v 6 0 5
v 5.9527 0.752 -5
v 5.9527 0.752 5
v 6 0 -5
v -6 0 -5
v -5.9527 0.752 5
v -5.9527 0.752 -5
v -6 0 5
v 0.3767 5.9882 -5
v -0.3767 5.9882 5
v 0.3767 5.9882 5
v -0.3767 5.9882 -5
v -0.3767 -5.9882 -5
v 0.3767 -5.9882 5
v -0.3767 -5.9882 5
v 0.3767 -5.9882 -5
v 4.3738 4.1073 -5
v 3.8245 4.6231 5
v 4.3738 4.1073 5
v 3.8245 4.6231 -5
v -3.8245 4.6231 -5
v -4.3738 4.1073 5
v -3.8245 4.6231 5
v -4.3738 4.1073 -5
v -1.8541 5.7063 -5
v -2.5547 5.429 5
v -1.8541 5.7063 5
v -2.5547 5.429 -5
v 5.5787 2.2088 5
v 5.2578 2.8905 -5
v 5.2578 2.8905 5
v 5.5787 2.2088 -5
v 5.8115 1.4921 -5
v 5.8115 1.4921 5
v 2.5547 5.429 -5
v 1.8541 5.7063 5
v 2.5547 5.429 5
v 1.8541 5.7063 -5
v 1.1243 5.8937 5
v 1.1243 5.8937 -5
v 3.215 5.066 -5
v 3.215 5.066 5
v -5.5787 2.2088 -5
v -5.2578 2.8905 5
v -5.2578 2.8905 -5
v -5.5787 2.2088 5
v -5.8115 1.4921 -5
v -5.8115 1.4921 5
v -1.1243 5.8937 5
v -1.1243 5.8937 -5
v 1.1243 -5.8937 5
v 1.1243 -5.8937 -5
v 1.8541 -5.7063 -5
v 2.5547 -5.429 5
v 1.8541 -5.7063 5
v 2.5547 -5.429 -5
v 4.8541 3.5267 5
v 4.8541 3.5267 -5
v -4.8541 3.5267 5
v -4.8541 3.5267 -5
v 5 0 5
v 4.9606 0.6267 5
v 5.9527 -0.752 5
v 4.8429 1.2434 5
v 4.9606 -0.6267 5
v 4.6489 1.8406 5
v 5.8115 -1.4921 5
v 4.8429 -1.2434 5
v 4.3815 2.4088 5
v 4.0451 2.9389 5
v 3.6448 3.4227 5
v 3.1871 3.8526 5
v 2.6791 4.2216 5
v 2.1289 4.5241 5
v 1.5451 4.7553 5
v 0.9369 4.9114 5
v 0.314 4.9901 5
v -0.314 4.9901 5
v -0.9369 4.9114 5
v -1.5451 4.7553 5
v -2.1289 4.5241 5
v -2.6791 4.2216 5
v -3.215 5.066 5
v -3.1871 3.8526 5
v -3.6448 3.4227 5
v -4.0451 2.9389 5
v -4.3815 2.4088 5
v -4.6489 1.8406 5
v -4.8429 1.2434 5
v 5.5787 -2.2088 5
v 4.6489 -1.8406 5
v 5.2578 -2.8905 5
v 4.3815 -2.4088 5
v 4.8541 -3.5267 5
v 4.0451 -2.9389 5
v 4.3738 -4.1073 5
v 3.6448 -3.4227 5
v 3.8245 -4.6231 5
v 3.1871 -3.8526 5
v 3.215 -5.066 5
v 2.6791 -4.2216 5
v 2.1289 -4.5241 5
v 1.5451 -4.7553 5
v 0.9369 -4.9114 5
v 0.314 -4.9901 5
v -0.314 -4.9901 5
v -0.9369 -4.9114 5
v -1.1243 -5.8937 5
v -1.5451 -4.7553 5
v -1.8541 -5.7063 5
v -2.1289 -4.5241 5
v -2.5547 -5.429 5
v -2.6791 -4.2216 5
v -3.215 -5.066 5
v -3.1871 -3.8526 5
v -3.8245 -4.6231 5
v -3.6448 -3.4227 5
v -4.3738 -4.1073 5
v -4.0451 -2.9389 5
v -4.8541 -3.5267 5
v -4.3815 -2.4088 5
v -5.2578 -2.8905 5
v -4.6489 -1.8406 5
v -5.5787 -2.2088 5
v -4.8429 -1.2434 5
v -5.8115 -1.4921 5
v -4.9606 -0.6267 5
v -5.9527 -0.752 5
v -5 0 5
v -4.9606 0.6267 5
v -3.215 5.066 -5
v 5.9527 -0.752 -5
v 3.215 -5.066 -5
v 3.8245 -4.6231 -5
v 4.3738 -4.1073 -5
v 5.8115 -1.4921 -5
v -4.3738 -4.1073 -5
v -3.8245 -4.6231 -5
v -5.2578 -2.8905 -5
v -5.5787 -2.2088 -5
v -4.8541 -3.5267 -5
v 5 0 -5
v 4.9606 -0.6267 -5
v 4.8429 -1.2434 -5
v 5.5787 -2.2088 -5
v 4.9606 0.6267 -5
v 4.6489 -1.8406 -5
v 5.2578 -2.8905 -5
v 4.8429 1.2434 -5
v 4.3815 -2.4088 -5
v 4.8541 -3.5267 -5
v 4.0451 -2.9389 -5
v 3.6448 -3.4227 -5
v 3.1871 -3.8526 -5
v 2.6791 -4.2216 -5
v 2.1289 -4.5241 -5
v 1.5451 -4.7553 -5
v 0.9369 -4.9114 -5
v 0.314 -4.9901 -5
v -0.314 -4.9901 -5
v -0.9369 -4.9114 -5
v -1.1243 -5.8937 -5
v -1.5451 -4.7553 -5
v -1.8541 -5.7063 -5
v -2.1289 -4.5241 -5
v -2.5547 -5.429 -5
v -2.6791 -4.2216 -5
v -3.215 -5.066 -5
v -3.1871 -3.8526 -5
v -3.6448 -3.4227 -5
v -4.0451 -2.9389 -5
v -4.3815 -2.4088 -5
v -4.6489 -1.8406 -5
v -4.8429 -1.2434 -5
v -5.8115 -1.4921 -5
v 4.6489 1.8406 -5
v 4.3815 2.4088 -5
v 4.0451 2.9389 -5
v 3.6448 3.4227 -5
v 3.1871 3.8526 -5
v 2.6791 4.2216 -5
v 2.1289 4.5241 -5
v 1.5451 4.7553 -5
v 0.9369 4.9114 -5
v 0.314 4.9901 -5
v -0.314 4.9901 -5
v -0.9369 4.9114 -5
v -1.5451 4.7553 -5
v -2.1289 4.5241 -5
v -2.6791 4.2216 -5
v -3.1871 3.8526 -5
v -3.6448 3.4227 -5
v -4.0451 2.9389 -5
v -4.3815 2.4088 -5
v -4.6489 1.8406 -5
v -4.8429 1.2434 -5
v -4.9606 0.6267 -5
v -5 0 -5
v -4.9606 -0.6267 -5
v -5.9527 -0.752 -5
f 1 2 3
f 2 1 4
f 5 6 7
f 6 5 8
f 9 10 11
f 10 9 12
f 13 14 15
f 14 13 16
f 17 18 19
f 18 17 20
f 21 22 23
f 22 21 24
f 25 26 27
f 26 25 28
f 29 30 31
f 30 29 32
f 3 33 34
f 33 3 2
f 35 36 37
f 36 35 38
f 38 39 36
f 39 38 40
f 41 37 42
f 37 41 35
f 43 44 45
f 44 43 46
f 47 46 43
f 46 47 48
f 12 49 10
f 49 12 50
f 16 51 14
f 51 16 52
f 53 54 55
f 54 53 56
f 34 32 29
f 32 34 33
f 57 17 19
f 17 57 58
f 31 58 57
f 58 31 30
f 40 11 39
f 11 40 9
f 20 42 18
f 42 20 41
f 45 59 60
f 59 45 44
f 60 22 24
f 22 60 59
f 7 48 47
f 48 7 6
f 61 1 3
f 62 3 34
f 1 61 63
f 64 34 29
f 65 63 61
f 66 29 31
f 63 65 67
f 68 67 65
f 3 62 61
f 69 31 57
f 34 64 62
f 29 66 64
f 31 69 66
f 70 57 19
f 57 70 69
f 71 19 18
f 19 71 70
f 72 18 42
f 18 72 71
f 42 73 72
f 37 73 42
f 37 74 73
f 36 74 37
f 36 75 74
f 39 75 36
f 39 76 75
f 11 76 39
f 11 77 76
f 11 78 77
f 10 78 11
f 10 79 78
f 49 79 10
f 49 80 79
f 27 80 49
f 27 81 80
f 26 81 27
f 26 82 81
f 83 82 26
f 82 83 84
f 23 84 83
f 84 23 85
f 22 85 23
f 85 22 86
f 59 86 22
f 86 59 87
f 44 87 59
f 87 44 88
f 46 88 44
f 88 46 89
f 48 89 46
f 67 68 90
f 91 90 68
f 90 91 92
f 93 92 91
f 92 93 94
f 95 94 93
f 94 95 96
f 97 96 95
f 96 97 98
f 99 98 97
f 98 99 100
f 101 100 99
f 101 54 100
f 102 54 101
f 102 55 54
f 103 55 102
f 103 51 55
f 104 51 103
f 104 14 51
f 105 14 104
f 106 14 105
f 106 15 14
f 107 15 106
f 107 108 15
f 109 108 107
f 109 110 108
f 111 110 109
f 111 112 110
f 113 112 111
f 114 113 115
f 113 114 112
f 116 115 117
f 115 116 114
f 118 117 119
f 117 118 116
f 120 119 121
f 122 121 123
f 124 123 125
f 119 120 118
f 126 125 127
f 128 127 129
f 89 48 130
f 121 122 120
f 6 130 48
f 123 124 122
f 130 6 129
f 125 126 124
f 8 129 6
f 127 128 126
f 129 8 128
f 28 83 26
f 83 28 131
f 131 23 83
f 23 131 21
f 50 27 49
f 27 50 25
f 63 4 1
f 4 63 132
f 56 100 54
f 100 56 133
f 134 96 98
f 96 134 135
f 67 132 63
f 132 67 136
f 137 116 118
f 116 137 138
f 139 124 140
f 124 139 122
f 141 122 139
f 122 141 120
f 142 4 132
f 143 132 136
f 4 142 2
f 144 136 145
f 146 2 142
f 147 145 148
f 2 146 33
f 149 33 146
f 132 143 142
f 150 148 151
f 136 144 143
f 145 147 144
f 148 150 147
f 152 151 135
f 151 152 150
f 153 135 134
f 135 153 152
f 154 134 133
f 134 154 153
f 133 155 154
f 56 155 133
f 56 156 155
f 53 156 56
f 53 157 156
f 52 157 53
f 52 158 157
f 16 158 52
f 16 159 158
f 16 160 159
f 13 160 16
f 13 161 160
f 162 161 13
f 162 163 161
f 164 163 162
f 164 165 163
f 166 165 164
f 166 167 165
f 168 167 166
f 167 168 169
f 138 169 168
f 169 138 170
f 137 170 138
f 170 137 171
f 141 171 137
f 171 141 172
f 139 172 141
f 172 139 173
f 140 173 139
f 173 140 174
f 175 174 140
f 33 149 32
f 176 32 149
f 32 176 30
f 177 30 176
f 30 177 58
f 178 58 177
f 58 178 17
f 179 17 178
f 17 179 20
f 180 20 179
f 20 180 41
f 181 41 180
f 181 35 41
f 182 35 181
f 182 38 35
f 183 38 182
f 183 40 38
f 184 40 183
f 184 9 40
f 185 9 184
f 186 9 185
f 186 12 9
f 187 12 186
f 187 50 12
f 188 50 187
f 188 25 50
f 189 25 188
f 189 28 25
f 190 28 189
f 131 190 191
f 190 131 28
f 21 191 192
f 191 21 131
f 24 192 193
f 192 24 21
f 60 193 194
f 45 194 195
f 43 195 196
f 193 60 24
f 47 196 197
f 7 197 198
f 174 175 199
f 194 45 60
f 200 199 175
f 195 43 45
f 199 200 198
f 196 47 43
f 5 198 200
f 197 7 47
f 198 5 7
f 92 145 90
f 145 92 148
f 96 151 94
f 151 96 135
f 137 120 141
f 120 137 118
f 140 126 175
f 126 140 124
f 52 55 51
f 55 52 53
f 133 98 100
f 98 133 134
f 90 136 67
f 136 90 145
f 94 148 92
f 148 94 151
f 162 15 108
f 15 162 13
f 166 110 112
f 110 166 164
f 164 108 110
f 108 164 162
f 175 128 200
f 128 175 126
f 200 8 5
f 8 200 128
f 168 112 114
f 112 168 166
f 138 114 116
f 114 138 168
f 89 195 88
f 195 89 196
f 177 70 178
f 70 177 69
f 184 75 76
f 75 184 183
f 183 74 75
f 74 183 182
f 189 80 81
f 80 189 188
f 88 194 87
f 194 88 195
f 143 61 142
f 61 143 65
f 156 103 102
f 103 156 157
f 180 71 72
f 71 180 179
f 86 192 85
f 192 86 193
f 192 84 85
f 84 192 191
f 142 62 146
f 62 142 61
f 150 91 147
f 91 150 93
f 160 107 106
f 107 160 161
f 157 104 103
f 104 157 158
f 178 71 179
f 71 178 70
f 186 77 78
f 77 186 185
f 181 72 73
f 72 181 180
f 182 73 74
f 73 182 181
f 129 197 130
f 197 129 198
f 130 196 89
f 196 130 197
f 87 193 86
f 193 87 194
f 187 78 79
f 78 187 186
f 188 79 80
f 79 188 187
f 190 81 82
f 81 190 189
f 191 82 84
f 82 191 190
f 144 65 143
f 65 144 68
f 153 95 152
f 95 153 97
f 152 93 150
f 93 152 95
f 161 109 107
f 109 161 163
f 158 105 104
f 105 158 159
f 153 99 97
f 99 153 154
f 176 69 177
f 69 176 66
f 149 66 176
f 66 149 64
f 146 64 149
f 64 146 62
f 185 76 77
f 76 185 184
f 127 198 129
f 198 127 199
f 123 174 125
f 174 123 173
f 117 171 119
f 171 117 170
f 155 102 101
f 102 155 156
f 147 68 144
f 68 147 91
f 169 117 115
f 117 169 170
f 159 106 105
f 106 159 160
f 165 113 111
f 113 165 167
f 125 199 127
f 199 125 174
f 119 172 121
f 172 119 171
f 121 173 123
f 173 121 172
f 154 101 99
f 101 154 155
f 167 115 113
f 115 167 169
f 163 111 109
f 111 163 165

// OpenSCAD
$fn = 50;


difference() {
	union() {
		translate(v = [0, 0, -5.0000000000]) {
			cylinder(h = 10, r = 6.0000000000);
		}
	}
	union() {
		translate(v = [0, 0, -100.0000000000]) {
			cylinder(h = 200, r = 5);
		}
	}
}
